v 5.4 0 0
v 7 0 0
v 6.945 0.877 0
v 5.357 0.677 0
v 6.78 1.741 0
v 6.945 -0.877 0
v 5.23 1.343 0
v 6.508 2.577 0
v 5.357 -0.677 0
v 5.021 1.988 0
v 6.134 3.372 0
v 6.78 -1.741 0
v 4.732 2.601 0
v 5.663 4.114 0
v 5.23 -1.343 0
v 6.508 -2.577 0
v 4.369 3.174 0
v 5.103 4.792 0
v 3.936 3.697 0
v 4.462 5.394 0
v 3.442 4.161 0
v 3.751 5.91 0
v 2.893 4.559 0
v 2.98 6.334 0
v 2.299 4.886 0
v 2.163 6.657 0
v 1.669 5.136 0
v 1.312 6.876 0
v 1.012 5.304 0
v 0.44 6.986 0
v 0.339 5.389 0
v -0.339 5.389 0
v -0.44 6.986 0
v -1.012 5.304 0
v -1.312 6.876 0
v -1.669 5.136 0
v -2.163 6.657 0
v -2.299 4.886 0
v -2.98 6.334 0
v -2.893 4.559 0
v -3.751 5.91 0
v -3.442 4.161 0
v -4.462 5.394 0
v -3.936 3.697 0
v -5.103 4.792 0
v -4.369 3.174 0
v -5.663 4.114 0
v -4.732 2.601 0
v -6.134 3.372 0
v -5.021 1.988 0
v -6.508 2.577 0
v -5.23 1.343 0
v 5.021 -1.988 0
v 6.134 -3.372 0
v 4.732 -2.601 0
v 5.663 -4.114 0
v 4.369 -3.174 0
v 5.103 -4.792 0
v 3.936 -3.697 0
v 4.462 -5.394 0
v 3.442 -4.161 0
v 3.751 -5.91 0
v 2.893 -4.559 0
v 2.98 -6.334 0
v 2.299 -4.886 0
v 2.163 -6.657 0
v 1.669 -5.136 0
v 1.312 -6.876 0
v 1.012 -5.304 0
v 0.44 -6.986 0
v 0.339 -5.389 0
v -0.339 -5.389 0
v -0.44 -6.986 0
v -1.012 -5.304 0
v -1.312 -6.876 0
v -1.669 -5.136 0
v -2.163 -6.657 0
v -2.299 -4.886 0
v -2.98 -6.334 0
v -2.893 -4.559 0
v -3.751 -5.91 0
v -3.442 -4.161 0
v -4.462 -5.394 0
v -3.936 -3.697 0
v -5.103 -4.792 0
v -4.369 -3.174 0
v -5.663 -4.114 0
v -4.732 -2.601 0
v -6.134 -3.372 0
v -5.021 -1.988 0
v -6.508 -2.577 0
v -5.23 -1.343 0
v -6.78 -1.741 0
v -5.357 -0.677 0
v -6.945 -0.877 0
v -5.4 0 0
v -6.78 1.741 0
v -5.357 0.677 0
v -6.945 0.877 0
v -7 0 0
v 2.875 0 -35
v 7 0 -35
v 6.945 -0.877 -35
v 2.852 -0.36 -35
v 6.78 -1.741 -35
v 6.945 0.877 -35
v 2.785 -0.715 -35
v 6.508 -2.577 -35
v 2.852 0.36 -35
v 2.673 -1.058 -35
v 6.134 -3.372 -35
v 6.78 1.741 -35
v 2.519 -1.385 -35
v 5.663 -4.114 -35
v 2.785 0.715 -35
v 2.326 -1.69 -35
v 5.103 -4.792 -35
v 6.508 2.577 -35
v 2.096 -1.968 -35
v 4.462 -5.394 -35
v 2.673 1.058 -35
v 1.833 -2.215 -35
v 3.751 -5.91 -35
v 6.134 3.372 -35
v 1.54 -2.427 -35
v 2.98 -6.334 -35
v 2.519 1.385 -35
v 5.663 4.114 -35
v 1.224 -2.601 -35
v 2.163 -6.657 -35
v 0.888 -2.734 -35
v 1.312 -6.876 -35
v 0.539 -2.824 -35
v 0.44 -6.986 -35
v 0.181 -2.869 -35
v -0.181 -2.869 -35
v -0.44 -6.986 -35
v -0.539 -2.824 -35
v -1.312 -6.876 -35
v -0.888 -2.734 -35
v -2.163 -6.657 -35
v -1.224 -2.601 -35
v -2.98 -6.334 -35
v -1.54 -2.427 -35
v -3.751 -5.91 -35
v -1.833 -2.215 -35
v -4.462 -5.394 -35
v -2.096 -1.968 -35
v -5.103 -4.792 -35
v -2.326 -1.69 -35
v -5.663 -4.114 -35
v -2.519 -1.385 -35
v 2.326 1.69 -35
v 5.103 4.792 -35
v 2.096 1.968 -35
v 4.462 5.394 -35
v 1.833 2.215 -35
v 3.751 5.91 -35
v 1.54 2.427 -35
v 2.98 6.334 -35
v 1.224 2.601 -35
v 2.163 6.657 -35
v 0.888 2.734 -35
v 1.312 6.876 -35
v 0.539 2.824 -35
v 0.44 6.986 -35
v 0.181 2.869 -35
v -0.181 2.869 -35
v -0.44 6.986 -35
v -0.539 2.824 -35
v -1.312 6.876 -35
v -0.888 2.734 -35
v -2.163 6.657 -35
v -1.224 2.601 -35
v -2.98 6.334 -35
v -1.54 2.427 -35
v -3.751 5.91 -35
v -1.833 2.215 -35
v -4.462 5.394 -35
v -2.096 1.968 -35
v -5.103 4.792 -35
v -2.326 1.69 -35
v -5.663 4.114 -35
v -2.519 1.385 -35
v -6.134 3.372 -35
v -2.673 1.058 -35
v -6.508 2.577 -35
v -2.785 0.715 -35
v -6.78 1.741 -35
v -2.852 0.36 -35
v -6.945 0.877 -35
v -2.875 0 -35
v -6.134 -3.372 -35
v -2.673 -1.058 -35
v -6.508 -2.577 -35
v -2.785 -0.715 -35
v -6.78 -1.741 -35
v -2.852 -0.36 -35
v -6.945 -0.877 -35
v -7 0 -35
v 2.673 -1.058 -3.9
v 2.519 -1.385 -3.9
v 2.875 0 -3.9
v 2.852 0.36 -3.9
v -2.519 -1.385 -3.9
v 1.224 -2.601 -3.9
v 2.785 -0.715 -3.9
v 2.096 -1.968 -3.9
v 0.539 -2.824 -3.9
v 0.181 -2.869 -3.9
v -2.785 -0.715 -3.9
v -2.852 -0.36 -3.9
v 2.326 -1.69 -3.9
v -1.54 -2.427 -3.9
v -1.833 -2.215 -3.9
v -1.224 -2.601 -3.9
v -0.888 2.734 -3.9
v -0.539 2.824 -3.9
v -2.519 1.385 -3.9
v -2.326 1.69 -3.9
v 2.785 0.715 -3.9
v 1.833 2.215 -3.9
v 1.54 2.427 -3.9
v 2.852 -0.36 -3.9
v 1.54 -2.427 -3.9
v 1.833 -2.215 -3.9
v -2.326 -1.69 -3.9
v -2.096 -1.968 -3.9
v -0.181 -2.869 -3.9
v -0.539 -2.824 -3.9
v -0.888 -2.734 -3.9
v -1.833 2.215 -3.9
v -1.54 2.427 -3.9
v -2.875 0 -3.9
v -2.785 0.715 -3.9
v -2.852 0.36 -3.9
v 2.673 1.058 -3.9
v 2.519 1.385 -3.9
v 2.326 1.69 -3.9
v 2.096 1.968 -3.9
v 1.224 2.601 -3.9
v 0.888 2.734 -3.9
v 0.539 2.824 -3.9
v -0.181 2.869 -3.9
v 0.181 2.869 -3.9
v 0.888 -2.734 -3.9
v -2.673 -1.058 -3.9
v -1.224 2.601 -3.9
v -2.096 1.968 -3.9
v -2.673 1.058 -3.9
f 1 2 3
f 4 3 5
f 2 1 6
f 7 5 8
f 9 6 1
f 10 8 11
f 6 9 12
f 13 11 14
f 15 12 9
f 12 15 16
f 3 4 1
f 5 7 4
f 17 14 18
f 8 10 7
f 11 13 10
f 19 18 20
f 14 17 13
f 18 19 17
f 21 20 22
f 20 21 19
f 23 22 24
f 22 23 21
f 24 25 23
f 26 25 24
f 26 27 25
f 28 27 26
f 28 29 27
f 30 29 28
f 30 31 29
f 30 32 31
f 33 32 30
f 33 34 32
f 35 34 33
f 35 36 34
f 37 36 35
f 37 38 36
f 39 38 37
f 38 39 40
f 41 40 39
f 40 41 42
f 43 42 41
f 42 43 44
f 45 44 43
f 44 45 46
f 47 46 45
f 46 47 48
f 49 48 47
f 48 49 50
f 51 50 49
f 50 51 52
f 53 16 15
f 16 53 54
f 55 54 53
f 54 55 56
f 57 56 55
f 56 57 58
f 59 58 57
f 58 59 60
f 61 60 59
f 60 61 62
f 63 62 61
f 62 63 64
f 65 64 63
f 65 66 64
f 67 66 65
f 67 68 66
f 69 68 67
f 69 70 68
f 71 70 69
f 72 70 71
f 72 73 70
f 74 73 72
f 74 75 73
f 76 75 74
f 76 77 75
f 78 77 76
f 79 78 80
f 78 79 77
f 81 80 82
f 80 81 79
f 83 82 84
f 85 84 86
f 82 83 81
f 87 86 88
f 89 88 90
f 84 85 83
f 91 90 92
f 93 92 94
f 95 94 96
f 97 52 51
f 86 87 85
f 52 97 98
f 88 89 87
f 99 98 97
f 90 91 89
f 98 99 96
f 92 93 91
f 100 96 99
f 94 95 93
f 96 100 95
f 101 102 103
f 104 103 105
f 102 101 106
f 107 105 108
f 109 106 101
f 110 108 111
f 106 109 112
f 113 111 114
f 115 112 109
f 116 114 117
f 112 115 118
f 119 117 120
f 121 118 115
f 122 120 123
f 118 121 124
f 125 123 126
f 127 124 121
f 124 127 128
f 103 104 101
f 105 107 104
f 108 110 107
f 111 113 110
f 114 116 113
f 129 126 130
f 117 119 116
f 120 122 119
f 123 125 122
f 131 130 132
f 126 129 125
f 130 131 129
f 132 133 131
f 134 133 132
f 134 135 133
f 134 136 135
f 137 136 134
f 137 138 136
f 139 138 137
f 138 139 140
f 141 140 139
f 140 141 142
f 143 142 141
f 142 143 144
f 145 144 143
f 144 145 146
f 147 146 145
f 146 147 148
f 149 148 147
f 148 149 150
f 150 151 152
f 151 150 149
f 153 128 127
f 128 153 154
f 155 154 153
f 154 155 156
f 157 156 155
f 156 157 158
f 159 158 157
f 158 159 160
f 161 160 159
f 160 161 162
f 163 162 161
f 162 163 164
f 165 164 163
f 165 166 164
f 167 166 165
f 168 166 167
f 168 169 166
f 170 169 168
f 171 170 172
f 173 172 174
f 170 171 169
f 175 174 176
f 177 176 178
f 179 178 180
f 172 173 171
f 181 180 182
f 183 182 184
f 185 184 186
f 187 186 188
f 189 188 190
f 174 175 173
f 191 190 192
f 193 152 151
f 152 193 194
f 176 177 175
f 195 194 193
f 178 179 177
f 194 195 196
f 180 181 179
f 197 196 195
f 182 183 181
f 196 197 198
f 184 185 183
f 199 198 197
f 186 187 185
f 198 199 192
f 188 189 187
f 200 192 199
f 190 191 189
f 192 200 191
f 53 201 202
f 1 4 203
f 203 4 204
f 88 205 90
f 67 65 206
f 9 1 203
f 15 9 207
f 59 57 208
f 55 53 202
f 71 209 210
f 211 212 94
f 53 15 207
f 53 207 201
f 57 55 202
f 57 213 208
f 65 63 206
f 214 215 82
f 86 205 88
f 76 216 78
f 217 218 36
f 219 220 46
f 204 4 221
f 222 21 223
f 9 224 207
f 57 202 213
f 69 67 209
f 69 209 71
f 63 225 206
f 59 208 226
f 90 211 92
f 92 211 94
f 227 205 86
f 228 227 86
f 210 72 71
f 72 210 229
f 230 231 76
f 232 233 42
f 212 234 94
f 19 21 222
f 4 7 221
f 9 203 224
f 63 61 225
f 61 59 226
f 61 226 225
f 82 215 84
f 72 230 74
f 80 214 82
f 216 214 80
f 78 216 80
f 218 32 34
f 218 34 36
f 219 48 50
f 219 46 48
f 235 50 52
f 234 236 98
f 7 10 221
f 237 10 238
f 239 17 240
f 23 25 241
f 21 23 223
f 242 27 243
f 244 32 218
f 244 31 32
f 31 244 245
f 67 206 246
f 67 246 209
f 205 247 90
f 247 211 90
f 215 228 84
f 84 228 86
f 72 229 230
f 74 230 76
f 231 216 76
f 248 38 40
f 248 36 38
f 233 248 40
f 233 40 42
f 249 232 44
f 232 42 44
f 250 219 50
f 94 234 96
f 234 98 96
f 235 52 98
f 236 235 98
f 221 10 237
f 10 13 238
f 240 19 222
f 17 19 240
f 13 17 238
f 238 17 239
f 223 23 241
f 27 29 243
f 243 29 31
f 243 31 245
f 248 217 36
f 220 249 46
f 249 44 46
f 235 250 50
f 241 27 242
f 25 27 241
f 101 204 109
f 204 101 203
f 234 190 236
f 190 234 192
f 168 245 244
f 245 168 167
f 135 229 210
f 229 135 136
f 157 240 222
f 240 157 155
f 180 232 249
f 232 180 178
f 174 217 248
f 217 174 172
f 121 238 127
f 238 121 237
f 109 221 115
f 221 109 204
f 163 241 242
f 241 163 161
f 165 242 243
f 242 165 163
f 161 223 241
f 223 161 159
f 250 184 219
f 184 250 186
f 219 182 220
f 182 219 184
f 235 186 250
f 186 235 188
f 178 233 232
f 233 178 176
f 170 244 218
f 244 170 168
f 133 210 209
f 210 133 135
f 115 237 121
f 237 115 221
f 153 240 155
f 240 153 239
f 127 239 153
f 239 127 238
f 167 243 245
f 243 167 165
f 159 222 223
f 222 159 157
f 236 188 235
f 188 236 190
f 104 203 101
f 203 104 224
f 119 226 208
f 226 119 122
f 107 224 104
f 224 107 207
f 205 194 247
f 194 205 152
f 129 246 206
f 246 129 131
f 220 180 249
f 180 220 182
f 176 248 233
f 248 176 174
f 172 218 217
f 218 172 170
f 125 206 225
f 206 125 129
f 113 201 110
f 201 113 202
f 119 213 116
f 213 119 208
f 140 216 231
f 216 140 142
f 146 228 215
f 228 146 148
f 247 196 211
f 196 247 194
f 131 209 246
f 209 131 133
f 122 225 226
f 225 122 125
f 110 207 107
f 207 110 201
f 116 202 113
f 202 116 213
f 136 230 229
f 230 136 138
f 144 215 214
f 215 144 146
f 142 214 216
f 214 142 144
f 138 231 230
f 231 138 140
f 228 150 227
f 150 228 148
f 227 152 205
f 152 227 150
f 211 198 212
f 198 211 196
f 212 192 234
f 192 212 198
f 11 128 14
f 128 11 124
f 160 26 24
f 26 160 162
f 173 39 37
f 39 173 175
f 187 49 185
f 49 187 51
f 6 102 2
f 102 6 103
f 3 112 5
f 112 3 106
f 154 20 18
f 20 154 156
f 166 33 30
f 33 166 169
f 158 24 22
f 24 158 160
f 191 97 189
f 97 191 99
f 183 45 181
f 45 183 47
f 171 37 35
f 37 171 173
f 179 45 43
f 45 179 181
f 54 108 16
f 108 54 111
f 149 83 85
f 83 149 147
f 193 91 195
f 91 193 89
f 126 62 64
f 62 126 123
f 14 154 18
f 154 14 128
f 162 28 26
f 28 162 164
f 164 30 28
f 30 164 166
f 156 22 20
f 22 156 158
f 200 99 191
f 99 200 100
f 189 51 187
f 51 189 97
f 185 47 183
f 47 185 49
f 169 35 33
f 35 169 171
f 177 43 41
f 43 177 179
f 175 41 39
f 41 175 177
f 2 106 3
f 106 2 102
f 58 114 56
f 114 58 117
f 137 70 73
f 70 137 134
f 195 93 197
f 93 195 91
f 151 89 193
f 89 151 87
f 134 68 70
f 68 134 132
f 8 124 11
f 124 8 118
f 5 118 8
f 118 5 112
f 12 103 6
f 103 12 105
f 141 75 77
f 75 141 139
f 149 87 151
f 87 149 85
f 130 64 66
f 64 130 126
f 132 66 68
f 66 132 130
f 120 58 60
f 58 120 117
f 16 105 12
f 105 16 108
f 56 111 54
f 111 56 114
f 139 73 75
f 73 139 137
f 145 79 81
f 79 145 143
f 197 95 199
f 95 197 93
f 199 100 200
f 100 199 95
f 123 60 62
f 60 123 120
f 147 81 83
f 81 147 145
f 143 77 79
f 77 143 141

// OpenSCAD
$fn = 50;


difference() {
	union() {
		translate(v = [0, 0, -35.0000000000]) {
			cylinder(h = 35, r = 7.0000000000);
		}
	}
	union() {
		translate(v = [0, 0, 0]) {
			rotate(a = [0, 0, 0]) {
				difference() {
					union() {
						#translate(v = [0, 0, -35.0000000000]) {
							cylinder(h = 35, r = 2.6000000000);
						}
						#translate(v = [0, 0, -3.9000000000]) {
							cylinder(h = 3.9000000000, r = 7.0000000000, r1 = 2.8750000000, r2 = 5.4000000000);
						}
						#translate(v = [0, 0, -35.0000000000]) {
							cylinder(h = 35, r = 2.8750000000);
						}
						#translate(v = [0, 0, -35.0000000000]) {
							cylinder(h = 35, r = 2.6000000000);
						}
					}
					union();
				}
			}
		}
	}
}
